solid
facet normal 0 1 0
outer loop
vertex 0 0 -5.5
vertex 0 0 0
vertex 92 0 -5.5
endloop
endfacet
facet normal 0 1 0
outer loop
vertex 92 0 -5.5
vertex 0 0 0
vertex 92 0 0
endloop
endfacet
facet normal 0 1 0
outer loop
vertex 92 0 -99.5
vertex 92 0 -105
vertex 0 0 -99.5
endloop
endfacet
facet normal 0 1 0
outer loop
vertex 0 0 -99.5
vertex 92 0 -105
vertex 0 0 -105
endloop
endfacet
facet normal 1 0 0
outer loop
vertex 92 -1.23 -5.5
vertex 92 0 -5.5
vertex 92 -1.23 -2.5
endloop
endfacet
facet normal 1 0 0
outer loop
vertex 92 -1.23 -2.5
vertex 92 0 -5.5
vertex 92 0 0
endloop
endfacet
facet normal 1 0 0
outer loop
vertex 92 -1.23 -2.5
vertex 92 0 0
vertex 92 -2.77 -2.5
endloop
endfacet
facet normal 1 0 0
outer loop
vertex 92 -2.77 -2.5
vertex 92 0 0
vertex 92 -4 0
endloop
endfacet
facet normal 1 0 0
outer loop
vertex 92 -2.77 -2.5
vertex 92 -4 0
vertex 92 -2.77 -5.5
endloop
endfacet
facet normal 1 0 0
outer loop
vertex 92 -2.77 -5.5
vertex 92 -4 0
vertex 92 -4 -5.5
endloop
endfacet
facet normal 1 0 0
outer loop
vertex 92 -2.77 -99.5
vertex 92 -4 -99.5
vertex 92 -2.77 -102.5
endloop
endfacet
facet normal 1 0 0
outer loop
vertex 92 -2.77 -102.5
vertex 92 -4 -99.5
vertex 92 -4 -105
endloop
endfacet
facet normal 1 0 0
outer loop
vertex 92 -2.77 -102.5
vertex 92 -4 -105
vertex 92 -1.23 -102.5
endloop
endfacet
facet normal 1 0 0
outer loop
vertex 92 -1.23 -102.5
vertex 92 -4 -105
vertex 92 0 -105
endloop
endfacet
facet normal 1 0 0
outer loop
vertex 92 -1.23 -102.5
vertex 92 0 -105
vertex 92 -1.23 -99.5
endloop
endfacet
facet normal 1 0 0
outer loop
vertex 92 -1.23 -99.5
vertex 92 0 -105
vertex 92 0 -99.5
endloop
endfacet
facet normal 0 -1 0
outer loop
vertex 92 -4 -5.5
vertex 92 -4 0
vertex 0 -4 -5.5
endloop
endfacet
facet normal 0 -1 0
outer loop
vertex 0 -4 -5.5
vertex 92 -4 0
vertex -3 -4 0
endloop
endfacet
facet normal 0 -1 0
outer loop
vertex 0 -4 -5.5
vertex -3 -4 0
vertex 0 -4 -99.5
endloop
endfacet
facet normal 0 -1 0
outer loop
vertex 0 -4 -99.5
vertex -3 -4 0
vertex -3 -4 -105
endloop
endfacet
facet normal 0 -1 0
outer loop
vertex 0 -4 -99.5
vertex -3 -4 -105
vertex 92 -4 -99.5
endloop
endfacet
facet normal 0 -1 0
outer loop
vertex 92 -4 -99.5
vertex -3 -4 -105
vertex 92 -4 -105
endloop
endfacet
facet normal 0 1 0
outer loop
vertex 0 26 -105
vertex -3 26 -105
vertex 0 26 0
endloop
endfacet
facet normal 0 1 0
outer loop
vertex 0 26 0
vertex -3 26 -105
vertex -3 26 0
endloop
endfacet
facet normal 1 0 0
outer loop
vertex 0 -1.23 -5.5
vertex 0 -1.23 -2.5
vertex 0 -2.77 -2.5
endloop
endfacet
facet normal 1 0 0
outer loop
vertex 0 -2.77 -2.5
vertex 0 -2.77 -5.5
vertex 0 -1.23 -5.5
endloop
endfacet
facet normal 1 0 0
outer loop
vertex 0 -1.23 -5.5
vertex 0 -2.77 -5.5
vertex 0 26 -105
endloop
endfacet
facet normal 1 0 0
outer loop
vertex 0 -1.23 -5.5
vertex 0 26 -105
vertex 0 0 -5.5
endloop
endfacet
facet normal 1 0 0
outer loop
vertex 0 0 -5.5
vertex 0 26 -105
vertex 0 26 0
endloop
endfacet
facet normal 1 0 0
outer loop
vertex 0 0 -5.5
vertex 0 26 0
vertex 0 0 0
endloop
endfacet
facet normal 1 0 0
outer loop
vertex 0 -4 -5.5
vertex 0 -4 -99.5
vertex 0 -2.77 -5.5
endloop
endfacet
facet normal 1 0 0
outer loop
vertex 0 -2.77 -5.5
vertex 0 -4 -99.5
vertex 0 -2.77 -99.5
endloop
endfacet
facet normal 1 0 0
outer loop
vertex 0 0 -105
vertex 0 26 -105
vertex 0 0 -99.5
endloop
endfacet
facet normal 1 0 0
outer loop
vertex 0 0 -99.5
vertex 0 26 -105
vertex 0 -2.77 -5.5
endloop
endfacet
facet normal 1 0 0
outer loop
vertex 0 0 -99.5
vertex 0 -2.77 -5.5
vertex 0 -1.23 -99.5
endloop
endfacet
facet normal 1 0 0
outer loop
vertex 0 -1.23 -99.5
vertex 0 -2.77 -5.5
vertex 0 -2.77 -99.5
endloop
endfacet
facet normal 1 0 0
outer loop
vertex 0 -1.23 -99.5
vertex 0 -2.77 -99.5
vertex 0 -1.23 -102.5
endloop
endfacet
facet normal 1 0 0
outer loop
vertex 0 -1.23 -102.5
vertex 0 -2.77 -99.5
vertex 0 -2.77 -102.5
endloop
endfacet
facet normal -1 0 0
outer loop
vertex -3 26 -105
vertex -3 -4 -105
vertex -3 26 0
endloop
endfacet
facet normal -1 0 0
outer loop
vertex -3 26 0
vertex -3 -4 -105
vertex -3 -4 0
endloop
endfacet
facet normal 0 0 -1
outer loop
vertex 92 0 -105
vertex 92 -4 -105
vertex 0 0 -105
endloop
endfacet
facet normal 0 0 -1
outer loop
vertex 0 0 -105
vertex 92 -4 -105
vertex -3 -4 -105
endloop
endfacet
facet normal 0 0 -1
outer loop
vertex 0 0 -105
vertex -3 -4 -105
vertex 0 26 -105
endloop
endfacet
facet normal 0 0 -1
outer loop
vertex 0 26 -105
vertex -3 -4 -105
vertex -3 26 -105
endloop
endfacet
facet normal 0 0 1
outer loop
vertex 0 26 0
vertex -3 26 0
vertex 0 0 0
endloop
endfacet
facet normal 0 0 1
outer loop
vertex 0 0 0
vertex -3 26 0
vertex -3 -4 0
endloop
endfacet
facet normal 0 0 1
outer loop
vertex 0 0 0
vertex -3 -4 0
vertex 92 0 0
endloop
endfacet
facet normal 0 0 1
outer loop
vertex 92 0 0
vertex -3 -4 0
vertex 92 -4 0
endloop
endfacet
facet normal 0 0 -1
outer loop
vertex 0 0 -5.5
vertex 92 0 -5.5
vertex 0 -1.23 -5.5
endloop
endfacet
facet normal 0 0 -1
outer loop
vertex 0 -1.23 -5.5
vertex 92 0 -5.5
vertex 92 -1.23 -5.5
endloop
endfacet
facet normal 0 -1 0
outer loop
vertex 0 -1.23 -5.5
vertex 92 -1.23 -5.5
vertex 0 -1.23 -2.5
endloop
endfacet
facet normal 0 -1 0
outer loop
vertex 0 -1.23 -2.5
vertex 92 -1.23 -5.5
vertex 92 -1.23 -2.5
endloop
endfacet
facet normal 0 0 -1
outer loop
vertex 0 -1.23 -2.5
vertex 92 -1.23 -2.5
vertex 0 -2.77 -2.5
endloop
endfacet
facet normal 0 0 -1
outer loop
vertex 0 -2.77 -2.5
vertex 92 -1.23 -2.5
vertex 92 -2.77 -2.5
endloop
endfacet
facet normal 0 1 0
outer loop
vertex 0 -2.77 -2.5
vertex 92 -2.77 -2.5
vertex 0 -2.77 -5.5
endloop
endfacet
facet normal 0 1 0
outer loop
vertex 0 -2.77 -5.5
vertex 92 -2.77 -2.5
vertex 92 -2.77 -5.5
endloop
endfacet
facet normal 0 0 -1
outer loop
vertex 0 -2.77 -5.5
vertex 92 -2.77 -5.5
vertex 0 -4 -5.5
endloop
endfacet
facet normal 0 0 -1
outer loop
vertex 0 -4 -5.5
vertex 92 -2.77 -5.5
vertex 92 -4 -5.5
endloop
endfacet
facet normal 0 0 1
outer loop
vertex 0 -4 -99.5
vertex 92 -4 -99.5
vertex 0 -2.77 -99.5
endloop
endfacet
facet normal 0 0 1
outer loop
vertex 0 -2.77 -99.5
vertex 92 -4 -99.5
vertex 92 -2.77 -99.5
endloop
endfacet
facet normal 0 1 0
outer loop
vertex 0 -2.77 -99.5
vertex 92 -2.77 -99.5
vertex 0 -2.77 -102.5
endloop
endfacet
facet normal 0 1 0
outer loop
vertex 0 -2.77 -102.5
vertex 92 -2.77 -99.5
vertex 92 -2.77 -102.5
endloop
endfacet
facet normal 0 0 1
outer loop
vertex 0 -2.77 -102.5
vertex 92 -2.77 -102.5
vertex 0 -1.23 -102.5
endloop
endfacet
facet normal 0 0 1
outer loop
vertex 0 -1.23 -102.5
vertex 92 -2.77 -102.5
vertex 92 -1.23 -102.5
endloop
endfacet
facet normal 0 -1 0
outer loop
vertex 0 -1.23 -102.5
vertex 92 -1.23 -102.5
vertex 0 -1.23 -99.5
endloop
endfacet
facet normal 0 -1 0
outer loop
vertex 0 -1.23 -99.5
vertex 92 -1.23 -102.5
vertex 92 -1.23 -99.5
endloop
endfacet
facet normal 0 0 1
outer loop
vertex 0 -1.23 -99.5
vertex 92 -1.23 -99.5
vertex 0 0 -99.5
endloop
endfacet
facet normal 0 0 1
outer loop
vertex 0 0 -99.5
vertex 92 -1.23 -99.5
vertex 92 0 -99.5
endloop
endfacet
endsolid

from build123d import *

# Parameters (mm, degrees)
BOSS_EXTRUDE1_DEPTH = 105
CUT_EXTRUDE1_DEPTH  = 100


with BuildPart() as part:
    # Sketch1 → Boss-Extrude1 (new body)
    with BuildSketch(Plane.XY):
        Polygon((0, 26), (0, 0), (92, 0), (92, -4), (-3, -4), (-3, 26), align=None)
    extrude(amount=-BOSS_EXTRUDE1_DEPTH)

    # Sketch2 → Cut-Extrude1 (cut)
    with BuildSketch(Plane(origin=(0, 0, 0), x_dir=(0, 0, -1), z_dir=(1, 0, 0))):
        Polygon((99.5, -1.23), (102.5, -1.23), (102.5, -2.77), (99.5, -2.77), (99.5, -4), (5.5, -4), (5.5, -2.77), (2.5, -2.77), (2.5, -1.23), (5.5, -1.23), (5.5, 0), (99.5, 0), align=None)
    extrude(amount=CUT_EXTRUDE1_DEPTH, mode=Mode.SUBTRACT)


solid = part.part
